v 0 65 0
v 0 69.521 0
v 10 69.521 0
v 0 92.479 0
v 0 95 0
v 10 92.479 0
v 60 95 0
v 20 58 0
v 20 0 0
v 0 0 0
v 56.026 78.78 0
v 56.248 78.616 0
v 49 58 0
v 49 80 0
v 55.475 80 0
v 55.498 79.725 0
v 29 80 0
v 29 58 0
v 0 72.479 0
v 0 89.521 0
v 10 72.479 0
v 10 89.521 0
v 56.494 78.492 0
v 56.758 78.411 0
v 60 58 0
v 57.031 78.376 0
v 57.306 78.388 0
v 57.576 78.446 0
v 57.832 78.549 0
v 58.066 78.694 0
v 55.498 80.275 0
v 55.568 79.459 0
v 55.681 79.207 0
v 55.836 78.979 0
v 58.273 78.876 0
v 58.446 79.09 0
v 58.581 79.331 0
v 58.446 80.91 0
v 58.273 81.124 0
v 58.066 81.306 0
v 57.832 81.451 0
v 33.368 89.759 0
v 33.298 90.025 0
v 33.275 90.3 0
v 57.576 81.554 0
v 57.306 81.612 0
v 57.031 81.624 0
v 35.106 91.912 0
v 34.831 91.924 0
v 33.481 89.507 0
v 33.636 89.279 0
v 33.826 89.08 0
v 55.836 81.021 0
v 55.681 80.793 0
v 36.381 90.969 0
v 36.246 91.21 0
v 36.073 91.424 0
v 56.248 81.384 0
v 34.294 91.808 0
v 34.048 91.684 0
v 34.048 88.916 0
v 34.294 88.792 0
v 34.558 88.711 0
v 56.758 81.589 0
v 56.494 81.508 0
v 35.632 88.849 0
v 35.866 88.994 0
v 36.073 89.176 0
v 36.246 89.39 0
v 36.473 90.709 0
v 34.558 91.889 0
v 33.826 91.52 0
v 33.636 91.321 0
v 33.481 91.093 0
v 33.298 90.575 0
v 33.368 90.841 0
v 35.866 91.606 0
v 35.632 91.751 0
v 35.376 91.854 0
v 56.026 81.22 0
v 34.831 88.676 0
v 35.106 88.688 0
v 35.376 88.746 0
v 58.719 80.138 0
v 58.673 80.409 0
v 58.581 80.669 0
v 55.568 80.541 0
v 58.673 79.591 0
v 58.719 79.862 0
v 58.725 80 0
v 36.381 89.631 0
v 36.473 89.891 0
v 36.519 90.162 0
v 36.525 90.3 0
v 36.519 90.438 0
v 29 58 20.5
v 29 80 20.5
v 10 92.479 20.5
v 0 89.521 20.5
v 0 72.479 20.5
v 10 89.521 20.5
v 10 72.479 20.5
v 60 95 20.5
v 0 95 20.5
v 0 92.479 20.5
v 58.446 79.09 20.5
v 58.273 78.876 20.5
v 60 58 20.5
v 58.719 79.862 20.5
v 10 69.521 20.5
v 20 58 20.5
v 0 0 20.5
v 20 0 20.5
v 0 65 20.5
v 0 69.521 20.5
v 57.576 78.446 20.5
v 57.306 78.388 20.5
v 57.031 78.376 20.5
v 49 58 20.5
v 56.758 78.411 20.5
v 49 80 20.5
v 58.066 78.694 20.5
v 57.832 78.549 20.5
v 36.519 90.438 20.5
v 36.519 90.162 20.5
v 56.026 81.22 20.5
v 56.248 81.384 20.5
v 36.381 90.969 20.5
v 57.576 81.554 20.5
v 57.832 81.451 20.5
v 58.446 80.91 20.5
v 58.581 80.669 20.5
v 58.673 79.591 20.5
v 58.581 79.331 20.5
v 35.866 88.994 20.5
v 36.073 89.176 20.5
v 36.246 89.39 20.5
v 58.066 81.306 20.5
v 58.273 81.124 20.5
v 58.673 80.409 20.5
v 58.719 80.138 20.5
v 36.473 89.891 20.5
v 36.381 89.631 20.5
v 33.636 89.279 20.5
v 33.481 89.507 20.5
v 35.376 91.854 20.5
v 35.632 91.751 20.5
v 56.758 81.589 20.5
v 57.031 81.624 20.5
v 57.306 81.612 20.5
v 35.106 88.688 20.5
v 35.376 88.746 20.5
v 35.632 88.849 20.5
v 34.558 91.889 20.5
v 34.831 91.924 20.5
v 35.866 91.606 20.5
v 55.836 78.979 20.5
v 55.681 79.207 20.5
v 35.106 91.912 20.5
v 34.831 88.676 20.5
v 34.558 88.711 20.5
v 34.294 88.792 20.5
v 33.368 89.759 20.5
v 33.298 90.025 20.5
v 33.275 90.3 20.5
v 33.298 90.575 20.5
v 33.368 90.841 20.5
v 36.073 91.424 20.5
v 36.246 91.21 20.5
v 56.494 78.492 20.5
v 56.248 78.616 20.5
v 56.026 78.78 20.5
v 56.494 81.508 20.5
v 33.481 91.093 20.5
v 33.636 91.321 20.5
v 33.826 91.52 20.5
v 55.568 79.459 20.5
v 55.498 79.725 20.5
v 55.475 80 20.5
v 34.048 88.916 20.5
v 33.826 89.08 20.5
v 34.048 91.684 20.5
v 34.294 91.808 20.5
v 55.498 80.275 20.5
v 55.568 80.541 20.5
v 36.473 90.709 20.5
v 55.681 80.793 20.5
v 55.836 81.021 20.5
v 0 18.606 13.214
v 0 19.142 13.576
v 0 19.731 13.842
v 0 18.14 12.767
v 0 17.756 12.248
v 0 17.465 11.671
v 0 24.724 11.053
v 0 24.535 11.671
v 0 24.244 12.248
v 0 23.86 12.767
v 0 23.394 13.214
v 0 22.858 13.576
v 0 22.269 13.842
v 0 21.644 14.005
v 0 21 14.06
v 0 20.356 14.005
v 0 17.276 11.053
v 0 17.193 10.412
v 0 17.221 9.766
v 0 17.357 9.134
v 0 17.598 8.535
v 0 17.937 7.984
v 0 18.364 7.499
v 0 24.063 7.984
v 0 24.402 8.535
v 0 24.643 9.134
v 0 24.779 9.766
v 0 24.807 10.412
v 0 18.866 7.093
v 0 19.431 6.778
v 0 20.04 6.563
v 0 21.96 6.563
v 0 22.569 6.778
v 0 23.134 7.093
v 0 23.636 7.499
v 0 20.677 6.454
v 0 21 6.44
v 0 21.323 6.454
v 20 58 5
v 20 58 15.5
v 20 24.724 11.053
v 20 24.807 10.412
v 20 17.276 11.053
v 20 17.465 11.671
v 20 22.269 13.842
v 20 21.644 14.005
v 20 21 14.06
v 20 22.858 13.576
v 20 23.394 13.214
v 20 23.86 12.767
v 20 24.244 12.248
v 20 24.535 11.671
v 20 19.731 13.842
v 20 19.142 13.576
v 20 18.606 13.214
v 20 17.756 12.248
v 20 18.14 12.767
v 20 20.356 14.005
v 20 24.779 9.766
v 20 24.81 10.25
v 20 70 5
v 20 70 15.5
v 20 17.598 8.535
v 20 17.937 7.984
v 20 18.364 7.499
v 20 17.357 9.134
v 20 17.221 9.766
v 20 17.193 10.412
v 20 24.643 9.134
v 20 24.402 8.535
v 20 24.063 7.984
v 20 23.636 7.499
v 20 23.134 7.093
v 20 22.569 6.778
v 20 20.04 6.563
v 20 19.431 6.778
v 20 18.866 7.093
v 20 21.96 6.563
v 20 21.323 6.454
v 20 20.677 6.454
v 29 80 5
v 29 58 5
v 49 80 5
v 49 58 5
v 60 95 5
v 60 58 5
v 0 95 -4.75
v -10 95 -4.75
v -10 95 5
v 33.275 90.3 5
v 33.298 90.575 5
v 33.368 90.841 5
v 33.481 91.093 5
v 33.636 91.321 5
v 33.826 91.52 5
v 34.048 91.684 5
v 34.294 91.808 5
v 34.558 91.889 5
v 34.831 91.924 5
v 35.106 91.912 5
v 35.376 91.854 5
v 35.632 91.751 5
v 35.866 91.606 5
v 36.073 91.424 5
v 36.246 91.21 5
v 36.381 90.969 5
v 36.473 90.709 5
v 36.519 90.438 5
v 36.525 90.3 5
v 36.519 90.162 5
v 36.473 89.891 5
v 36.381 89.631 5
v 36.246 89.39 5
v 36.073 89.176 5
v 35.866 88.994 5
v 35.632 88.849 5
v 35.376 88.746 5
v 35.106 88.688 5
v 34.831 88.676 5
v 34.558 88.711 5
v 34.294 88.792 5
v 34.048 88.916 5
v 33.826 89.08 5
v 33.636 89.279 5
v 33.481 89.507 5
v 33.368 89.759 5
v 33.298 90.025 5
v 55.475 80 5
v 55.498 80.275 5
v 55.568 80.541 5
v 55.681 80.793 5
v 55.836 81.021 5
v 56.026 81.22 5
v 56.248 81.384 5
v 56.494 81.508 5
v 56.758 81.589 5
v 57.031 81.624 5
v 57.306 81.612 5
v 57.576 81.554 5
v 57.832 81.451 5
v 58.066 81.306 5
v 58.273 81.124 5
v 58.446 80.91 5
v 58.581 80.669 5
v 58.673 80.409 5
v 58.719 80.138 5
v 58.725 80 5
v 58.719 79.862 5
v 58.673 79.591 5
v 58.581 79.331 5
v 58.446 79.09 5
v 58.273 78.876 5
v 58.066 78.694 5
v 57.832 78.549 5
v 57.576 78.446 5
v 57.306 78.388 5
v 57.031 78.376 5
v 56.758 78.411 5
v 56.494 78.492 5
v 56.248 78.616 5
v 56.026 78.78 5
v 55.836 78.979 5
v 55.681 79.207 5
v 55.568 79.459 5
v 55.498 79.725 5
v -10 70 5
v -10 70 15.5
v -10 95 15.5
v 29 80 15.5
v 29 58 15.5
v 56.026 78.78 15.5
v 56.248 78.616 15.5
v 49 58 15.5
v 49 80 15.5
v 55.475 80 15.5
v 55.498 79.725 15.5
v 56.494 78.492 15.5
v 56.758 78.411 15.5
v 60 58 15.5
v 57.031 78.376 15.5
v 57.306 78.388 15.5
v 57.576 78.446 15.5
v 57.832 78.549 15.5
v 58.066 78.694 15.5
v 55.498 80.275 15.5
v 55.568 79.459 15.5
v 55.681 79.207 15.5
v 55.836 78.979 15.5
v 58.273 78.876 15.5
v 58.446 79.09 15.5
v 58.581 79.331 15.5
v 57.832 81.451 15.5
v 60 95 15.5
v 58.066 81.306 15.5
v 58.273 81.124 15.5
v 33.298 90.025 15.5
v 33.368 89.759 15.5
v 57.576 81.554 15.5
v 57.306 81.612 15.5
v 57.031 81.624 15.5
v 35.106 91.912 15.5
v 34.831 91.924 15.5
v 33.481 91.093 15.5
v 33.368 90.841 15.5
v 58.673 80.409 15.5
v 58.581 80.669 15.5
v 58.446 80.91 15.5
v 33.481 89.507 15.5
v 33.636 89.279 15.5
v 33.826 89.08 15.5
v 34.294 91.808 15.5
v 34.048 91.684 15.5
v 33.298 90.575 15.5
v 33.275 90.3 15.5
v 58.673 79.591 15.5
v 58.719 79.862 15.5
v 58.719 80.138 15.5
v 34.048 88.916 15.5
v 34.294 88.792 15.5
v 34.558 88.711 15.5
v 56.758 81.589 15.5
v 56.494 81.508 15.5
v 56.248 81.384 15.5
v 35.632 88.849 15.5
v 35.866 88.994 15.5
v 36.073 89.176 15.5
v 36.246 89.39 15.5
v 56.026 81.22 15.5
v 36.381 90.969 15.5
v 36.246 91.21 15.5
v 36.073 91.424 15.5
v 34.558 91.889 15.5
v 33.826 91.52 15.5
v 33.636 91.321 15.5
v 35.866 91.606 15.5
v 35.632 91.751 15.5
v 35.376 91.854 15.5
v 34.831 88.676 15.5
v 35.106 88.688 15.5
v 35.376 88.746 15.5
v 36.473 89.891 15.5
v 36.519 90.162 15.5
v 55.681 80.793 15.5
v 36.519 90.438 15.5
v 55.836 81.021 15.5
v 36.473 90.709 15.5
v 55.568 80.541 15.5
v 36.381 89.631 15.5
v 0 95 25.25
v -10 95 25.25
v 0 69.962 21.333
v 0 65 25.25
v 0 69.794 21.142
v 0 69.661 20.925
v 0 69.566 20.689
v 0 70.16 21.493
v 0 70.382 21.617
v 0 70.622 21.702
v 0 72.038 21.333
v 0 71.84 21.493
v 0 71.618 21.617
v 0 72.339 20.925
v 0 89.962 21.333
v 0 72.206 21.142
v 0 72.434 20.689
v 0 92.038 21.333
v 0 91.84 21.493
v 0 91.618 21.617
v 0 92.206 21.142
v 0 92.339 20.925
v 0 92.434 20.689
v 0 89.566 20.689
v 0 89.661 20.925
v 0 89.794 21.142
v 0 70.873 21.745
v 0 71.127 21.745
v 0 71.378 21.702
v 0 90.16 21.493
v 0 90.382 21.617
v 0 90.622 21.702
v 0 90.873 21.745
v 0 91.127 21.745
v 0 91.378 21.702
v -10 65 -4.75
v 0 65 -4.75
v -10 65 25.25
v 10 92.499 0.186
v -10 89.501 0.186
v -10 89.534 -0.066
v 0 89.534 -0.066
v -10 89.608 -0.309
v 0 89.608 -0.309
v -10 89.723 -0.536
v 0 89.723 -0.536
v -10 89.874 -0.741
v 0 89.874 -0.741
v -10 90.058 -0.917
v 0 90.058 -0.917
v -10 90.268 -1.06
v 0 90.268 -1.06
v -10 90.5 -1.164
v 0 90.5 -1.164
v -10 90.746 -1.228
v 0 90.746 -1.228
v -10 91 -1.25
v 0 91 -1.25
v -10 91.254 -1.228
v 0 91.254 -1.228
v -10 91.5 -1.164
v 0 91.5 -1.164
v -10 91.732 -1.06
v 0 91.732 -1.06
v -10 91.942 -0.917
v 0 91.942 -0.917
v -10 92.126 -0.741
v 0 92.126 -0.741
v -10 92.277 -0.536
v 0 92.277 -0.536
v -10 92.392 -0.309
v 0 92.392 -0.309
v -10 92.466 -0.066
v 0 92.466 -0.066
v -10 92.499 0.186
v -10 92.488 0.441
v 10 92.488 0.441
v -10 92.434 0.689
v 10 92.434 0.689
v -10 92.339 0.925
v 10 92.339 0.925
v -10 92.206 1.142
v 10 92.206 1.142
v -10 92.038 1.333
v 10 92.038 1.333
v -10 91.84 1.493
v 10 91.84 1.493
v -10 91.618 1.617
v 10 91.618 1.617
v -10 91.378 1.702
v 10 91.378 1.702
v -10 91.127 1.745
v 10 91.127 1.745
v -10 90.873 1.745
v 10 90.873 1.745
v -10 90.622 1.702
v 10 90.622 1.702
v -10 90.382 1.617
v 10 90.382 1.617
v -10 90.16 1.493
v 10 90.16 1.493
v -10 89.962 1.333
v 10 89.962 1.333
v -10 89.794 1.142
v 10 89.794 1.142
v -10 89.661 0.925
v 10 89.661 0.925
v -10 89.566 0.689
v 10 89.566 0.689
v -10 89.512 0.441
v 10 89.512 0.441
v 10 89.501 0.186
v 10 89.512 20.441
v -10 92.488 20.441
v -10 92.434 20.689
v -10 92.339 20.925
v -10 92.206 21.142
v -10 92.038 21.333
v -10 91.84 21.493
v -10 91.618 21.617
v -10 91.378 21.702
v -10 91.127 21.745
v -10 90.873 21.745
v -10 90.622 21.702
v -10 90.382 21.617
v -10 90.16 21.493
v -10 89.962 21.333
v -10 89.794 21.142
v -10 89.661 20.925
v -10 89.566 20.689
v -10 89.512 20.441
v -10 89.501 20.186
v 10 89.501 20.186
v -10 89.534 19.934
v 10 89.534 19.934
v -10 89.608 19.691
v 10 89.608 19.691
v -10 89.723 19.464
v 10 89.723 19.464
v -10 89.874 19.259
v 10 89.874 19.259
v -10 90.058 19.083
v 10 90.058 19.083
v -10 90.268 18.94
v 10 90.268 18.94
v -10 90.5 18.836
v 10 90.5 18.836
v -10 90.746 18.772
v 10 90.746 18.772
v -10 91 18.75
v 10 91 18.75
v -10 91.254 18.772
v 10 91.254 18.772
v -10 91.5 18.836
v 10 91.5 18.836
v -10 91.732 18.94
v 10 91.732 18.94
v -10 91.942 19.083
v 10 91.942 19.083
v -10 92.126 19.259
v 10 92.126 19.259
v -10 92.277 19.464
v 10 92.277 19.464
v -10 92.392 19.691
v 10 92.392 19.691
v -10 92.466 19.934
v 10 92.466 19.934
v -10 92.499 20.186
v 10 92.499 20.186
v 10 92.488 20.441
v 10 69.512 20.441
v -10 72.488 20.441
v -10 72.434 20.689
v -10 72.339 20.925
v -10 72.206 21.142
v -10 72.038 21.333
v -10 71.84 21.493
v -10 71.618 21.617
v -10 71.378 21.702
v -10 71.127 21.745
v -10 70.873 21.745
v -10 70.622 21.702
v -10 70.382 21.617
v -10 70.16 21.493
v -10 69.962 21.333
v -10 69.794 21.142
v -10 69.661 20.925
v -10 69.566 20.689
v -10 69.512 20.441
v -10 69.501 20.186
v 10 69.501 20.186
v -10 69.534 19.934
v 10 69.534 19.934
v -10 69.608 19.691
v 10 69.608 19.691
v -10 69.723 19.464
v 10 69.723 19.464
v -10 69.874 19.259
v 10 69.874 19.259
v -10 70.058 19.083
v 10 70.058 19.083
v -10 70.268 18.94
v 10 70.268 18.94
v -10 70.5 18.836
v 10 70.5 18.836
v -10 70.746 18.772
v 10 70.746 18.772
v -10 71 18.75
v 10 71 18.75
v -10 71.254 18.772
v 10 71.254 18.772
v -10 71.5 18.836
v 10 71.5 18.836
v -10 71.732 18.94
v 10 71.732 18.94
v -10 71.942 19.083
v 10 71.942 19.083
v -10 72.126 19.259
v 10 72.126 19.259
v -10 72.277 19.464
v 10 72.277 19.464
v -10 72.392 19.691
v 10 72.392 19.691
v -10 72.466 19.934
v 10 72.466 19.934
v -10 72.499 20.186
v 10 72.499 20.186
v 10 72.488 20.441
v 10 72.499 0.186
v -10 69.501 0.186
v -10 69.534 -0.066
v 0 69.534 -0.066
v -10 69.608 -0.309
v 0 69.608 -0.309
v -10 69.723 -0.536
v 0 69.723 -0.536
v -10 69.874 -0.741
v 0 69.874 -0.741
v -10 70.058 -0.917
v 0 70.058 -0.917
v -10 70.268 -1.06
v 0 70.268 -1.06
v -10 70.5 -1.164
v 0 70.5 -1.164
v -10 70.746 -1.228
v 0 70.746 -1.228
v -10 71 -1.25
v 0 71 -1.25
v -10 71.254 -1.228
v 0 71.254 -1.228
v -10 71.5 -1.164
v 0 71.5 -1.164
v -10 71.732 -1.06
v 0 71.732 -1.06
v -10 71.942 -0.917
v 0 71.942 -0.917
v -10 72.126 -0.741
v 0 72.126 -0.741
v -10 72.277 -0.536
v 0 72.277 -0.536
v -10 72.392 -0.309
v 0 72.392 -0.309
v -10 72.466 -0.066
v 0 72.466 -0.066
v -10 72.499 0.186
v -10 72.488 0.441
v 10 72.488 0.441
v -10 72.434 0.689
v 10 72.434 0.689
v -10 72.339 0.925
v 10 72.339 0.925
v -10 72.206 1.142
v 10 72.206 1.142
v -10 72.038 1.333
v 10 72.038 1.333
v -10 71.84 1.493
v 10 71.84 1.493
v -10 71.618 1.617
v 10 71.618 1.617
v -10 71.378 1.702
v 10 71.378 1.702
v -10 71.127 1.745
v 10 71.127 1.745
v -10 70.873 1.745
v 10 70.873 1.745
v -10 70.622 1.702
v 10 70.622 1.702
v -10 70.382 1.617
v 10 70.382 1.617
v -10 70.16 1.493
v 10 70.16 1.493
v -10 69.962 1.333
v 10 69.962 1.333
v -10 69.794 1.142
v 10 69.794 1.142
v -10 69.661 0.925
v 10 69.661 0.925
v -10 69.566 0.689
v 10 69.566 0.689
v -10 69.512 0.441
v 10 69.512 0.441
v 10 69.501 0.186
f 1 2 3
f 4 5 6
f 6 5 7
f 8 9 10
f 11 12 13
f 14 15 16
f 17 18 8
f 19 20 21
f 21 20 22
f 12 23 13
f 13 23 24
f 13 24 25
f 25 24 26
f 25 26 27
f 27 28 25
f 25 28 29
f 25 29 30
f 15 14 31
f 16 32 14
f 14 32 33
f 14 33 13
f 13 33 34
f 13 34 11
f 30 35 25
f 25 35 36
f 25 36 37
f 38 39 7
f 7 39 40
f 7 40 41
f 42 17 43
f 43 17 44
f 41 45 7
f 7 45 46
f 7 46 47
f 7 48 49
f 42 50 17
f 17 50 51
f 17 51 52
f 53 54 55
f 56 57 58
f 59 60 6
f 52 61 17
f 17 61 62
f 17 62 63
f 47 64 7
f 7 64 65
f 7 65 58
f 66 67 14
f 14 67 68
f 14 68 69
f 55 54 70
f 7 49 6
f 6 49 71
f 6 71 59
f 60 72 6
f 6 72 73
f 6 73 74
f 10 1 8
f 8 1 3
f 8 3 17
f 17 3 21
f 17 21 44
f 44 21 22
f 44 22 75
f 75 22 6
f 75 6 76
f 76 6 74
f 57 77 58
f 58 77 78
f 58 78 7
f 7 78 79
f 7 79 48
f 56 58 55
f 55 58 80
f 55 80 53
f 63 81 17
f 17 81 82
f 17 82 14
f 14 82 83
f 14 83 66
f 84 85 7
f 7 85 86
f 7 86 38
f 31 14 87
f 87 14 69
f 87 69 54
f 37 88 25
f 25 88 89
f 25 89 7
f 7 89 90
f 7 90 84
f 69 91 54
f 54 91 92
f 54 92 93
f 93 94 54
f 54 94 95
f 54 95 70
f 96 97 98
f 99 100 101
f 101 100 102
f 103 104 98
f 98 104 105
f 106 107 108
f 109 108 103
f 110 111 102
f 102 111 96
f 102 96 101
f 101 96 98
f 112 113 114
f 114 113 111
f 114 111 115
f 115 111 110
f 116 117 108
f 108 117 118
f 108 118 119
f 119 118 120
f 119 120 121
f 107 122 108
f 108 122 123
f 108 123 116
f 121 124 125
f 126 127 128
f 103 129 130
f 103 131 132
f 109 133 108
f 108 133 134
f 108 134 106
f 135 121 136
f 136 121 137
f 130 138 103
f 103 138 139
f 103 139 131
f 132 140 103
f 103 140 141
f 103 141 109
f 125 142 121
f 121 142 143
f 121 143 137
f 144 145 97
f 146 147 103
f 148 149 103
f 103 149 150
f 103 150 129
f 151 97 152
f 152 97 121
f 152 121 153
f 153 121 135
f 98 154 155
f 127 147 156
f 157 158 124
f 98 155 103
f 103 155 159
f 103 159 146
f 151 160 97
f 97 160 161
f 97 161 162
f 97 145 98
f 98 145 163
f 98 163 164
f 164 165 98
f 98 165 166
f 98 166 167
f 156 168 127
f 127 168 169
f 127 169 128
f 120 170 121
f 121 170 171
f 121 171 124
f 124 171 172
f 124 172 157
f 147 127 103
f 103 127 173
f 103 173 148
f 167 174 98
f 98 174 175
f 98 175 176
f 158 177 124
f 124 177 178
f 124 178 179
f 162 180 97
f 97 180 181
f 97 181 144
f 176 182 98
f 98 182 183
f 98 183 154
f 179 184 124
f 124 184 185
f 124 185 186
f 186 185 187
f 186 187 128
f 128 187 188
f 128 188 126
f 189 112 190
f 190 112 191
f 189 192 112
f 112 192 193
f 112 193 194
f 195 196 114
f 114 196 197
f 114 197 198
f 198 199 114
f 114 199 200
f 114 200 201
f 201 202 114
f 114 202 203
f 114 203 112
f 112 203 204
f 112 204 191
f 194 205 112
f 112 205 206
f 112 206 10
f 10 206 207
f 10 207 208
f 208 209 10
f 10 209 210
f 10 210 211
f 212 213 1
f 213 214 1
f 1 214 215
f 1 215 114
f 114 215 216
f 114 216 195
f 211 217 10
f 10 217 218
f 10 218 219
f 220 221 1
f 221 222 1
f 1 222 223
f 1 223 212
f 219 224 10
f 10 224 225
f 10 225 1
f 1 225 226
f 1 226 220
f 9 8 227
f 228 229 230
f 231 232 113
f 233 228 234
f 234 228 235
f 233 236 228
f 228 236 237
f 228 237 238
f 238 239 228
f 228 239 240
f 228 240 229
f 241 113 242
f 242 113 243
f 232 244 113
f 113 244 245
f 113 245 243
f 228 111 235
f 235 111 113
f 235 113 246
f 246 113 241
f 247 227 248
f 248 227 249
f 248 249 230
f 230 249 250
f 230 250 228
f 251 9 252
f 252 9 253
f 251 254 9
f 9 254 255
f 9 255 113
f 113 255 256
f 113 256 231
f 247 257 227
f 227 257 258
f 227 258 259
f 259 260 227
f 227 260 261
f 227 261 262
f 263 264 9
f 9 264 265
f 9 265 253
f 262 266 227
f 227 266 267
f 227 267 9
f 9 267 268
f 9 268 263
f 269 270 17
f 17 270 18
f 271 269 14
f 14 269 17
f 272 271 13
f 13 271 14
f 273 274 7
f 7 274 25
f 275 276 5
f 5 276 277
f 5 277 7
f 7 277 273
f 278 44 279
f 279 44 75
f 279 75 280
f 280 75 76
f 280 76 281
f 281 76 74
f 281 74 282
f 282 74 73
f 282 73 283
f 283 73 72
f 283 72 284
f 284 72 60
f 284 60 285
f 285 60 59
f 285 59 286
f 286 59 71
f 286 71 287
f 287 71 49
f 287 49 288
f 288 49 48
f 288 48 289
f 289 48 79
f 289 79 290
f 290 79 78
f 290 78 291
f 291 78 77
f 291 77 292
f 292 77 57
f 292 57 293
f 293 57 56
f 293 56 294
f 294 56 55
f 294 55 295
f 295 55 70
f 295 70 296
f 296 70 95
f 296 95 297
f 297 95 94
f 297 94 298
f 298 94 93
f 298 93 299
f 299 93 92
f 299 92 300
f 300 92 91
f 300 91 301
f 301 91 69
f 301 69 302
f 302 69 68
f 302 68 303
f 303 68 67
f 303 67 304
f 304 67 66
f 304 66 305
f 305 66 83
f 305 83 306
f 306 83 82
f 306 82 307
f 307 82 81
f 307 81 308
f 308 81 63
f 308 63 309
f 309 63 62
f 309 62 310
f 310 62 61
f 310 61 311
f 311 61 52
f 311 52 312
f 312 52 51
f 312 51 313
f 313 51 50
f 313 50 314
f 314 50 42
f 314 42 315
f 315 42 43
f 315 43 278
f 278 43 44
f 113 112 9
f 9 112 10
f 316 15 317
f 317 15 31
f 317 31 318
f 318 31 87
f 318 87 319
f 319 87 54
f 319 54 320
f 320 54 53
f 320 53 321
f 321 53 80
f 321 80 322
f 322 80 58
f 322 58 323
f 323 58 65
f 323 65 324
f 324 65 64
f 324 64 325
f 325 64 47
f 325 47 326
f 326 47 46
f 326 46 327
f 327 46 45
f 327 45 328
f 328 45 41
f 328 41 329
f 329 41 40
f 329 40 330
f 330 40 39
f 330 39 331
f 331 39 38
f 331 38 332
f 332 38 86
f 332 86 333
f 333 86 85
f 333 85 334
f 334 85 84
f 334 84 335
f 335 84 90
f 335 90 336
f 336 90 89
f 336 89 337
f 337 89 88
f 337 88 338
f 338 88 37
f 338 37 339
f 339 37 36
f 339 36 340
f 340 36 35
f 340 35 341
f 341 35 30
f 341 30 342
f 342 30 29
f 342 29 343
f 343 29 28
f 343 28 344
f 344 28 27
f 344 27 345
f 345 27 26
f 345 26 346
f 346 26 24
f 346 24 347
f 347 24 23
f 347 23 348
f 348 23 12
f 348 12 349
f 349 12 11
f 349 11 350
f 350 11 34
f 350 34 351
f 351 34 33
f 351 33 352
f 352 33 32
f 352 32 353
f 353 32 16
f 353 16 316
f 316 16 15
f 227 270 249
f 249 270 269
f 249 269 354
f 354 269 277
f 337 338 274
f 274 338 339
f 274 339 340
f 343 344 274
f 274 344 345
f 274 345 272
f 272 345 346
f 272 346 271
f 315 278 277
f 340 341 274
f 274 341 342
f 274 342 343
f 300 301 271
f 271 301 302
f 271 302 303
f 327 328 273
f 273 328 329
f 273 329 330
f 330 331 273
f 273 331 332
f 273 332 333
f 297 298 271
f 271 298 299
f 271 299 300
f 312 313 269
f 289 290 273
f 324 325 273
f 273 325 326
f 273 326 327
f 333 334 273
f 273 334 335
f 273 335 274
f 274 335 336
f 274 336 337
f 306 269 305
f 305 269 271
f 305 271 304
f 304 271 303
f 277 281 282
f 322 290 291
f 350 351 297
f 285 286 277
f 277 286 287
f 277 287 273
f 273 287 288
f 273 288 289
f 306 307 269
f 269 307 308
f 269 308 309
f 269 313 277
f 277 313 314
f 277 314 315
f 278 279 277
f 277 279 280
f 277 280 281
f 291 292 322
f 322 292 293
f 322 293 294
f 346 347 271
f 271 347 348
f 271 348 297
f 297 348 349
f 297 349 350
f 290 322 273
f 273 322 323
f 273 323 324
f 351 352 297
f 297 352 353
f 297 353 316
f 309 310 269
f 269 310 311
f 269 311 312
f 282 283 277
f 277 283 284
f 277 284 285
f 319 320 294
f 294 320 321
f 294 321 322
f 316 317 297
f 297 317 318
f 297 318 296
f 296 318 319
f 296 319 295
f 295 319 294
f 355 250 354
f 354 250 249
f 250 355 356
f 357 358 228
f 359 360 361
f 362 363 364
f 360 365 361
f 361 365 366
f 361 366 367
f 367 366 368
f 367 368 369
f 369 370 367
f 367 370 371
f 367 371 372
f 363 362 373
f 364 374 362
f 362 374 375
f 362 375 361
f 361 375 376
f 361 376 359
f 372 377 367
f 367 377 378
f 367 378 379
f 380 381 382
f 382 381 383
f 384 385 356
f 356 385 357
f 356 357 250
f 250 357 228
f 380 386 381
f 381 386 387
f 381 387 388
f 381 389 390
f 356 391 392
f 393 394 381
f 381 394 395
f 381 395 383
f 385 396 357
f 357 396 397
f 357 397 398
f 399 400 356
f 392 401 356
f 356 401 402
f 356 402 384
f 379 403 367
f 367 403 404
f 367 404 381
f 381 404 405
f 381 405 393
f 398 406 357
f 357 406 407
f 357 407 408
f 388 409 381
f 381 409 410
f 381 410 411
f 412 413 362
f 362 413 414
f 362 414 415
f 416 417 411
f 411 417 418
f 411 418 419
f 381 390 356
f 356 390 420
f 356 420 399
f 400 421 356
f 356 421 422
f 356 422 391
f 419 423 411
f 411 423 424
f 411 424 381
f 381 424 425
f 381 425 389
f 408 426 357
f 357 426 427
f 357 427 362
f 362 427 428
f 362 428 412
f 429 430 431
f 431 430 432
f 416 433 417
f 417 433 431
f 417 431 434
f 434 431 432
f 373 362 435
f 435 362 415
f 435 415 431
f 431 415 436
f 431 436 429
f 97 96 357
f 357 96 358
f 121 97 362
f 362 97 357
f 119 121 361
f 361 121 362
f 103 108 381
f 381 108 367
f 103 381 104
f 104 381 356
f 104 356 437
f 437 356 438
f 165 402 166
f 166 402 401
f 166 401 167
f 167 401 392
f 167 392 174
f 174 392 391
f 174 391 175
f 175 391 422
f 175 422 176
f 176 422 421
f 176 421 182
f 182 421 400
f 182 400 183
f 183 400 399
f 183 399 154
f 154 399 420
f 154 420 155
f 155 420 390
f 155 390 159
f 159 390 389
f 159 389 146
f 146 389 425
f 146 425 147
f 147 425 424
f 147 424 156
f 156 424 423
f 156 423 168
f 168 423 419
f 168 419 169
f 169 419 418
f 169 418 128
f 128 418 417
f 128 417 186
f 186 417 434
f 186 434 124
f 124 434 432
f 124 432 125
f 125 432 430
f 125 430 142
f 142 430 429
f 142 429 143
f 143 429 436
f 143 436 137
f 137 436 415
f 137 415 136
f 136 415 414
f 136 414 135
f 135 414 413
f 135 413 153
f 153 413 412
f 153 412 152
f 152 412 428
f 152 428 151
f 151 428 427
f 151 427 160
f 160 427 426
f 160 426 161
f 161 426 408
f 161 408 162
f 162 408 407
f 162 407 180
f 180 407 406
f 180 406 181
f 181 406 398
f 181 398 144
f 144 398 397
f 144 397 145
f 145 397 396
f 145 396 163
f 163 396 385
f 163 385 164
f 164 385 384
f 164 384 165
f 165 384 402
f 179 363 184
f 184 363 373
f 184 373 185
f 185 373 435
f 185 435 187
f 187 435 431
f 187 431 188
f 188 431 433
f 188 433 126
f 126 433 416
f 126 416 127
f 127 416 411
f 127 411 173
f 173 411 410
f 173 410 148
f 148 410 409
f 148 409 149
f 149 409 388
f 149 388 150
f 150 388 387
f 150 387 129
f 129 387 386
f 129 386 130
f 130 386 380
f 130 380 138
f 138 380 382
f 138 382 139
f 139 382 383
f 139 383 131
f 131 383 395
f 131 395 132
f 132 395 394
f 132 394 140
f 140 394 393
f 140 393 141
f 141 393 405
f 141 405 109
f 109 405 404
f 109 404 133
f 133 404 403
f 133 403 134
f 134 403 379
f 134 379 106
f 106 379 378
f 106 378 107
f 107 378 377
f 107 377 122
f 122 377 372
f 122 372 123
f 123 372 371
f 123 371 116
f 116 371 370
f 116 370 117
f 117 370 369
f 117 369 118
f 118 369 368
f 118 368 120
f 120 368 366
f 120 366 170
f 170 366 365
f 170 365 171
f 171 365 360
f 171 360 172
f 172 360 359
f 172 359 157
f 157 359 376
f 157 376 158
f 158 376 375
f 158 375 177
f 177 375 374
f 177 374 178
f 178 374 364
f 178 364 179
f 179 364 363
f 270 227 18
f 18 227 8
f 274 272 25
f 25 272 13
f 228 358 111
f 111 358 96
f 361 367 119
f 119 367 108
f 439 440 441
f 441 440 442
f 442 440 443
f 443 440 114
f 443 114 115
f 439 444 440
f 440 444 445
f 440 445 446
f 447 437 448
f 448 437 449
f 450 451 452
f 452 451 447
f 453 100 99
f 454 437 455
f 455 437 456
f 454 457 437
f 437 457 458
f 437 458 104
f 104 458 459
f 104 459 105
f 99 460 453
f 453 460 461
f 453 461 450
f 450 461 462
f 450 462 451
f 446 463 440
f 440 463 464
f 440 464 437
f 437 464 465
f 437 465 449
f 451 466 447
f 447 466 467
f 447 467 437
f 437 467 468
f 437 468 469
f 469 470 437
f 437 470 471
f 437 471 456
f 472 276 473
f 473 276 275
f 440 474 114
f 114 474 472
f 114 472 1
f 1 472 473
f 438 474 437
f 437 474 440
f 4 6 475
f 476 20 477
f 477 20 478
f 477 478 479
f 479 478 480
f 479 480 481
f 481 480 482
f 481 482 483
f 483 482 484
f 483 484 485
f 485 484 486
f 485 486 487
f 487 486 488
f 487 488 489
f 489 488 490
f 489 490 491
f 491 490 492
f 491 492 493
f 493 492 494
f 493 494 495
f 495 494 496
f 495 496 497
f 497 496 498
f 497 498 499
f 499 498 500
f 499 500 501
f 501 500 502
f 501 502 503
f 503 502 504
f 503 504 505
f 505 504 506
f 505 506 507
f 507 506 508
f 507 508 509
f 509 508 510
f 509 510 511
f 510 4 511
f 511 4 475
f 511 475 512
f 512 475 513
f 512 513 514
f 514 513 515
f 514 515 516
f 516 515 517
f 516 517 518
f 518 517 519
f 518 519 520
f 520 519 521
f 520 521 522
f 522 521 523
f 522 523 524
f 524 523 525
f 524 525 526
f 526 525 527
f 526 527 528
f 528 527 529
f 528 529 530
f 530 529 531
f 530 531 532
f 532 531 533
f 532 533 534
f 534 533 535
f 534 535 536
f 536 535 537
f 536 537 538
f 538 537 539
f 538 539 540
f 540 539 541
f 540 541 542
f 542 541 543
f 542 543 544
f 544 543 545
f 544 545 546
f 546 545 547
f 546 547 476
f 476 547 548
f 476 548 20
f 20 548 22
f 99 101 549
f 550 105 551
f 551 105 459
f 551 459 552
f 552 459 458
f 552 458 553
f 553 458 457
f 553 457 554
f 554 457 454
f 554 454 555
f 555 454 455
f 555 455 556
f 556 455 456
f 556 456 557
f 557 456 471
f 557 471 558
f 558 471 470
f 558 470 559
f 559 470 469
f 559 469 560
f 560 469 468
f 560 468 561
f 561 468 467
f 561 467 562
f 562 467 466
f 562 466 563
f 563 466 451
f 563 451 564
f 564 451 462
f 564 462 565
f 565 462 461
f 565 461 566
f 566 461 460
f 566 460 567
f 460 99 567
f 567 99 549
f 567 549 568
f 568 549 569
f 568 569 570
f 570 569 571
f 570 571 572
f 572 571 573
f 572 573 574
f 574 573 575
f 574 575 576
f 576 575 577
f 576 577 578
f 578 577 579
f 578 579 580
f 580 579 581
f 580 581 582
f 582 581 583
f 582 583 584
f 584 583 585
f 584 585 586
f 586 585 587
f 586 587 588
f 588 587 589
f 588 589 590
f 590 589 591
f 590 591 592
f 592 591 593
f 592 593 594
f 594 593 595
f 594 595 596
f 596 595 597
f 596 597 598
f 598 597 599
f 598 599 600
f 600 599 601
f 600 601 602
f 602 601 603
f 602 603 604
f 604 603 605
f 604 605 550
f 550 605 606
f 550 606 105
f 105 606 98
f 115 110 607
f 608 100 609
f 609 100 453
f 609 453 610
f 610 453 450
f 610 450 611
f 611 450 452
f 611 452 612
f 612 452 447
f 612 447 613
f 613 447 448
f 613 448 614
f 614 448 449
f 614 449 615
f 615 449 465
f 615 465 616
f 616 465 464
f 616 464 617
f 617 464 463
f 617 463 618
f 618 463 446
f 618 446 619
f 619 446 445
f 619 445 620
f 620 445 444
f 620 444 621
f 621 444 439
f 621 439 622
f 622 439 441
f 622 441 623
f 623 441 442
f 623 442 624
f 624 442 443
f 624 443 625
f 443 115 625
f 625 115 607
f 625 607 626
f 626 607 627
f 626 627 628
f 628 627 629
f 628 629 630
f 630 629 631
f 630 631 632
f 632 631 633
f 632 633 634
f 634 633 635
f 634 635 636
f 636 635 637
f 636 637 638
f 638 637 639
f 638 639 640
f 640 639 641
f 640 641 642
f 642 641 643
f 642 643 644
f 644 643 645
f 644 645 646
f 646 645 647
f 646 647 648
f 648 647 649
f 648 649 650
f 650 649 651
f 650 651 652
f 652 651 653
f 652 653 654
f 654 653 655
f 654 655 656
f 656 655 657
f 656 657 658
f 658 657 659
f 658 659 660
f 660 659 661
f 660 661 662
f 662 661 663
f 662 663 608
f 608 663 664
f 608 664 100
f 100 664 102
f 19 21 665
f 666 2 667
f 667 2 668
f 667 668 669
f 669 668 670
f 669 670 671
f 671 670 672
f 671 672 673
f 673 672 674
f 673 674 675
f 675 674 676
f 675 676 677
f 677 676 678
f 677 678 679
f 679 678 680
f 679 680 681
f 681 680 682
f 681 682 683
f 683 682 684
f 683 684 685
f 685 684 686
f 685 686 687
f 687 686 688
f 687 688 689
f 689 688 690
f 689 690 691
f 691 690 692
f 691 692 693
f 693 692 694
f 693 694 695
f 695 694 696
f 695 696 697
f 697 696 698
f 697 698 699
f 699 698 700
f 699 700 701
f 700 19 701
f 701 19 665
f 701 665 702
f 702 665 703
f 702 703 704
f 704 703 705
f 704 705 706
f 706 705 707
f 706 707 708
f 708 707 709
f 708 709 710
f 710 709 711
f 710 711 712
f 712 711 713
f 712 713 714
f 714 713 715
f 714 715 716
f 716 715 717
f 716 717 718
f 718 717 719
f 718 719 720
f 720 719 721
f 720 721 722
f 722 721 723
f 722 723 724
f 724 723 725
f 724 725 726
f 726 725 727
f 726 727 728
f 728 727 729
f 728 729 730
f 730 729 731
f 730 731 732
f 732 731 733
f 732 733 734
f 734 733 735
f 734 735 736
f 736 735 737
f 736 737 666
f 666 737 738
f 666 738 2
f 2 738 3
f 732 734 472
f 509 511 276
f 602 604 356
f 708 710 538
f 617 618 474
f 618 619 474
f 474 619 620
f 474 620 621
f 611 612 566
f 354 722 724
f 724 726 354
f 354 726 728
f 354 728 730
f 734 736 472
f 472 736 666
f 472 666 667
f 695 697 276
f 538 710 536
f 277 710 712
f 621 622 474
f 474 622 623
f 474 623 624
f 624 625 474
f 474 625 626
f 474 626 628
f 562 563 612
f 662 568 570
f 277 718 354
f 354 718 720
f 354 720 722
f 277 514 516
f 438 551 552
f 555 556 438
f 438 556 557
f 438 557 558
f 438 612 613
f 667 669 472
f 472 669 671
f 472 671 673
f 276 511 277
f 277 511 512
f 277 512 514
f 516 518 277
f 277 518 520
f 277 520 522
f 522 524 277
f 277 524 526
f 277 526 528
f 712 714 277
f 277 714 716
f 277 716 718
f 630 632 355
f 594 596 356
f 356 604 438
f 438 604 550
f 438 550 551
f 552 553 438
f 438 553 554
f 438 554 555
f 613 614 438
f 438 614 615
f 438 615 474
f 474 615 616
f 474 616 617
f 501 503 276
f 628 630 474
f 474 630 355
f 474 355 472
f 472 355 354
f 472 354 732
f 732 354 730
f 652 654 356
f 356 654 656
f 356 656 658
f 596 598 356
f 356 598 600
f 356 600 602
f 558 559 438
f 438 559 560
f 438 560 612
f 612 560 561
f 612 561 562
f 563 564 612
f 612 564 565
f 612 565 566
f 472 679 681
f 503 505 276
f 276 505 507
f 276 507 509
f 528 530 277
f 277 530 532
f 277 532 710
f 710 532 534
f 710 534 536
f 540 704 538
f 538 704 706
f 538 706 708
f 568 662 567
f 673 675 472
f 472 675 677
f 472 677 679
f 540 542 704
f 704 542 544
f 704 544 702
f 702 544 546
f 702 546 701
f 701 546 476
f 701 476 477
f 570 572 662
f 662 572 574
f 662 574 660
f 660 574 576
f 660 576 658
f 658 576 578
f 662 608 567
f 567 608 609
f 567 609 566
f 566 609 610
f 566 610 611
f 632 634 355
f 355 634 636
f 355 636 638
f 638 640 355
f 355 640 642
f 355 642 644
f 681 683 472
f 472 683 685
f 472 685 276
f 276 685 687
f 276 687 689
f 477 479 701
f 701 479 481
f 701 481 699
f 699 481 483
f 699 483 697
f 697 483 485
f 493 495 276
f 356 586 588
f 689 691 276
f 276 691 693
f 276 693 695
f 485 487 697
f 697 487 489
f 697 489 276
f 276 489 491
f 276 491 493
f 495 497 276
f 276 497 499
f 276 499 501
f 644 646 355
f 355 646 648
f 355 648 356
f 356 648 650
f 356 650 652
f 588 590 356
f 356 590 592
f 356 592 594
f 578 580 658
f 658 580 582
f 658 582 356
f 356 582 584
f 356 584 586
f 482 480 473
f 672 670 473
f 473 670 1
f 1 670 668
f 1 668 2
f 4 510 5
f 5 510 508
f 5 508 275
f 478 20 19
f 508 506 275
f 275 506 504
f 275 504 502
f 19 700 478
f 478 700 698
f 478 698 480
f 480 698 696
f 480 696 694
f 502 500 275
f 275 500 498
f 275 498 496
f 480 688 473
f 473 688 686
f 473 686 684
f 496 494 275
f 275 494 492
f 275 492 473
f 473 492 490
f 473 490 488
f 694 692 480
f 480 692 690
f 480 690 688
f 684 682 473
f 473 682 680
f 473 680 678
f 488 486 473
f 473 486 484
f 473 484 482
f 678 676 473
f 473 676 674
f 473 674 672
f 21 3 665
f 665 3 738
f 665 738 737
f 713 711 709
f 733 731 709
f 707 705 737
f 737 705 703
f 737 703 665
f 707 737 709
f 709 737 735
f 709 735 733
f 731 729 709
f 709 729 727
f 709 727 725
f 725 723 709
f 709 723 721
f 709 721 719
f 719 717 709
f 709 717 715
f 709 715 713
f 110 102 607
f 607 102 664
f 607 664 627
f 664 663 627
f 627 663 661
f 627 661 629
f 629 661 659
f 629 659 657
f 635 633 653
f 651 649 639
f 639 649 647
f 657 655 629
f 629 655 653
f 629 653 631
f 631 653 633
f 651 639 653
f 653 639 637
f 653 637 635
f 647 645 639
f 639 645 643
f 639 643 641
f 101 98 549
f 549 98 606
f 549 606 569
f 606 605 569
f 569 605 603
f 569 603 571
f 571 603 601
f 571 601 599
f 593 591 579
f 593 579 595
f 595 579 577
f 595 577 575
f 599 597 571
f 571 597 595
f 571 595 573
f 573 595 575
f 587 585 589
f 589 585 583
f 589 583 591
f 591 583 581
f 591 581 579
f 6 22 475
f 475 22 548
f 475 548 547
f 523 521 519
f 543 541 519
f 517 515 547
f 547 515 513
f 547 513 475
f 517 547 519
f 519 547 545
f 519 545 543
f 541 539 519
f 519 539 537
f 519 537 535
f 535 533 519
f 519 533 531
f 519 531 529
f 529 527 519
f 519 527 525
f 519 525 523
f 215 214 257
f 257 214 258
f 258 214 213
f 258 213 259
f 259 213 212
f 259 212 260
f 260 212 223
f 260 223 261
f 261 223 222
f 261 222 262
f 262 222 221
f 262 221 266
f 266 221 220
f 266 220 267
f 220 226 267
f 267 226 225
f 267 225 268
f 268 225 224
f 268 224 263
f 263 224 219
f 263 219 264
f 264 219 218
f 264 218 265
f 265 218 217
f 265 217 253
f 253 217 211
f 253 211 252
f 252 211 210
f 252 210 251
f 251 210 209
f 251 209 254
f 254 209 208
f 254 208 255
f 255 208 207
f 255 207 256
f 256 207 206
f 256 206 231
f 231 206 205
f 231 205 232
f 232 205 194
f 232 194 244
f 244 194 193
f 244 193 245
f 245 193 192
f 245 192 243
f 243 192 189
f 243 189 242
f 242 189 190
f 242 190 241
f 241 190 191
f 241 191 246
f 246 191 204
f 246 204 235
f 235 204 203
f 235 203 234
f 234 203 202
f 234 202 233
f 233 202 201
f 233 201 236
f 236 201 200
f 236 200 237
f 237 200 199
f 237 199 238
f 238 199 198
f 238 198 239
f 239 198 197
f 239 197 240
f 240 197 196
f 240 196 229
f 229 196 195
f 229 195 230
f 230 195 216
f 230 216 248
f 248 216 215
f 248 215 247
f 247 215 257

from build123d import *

# Parameters (mm, degrees)
SKETCH1_R           = 1.625
BOSS_EXTRUDE1_DEPTH = 5
BOSS_EXTRUDE2_START = 5
SKETCH1_3_W         = 20
SKETCH1_3_H         = 70
BOSS_EXTRUDE2_DEPTH = 10.5
BOSS_EXTRUDE3_START = 15.5
SKETCH1_4_R         = 1.625
BOSS_EXTRUDE3_DEPTH = 5
SKETCH1_5_W         = 9
SKETCH1_5_H         = 12
SKETCH1_5_W_2       = 11
BOSS_EXTRUDE4_DEPTH = 5
BOSS_EXTRUDE5_START = 15.5
SKETCH1_6_W         = 9
SKETCH1_6_H         = 12
SKETCH1_6_W_2       = 11
BOSS_EXTRUDE5_DEPTH = 5
SKETCH2_R           = 1.5
BOSS_EXTRUDE6_DEPTH = 10
CUT_EXTRUDE1_START  = 10
SKETCH2_3_R         = 1.5
CUT_EXTRUDE1_DEPTH  = 10
CUT_EXTRUDE2_START  = -120
SKETCH3_R           = 3.81
CUT_EXTRUDE2_DEPTH  = 20


with BuildPart() as part:
    # Sketch1 → Boss-Extrude1 (new body)
    with BuildSketch(Plane.XY):
        Polygon((20, 70), (29, 70), (29, 80), (49, 80), (49, 70), (60, 70), (60, 95), (0, 95), (0, 0), (20, 0), align=None)
        with Locations((34.9, 90.3)):
            Circle(SKETCH1_R, mode=Mode.SUBTRACT)
        with Locations((57.1, 80)):
            Circle(SKETCH1_R, mode=Mode.SUBTRACT)
    extrude(amount=BOSS_EXTRUDE1_DEPTH)

    # Sketch1<3> → Boss-Extrude2 (add)
    with BuildSketch(Plane.XY.offset(BOSS_EXTRUDE2_START)):
        with Locations((10, 35)):
            Rectangle(SKETCH1_3_W, SKETCH1_3_H)
    extrude(amount=BOSS_EXTRUDE2_DEPTH)

    # Sketch1<4> → Boss-Extrude3 (add)
    with BuildSketch(Plane.XY.offset(BOSS_EXTRUDE3_START)):
        Polygon((20, 70), (29, 70), (29, 80), (49, 80), (49, 70), (60, 70), (60, 95), (0, 95), (0, 0), (20, 0), align=None)
        with Locations((34.9, 90.3)):
            Circle(SKETCH1_4_R, mode=Mode.SUBTRACT)
        with Locations((57.1, 80)):
            Circle(SKETCH1_4_R, mode=Mode.SUBTRACT)
    extrude(amount=BOSS_EXTRUDE3_DEPTH)

    # Sketch1<5> → Boss-Extrude4 (add)
    with BuildSketch(Plane.XY):
        with Locations((24.5, 64)):
            Rectangle(SKETCH1_5_W, SKETCH1_5_H)
        with Locations((54.5, 64)):
            Rectangle(SKETCH1_5_W_2, SKETCH1_5_H)
    extrude(amount=BOSS_EXTRUDE4_DEPTH)

    # Sketch1<6> → Boss-Extrude5 (add)
    with BuildSketch(Plane.XY.offset(BOSS_EXTRUDE5_START)):
        with Locations((24.5, 64)):
            Rectangle(SKETCH1_6_W, SKETCH1_6_H)
        with Locations((54.5, 64)):
            Rectangle(SKETCH1_6_W_2, SKETCH1_6_H)
    extrude(amount=BOSS_EXTRUDE5_DEPTH)

    # Sketch2 → Boss-Extrude6 (add)
    with BuildSketch(Plane(origin=(0, 0, 0), x_dir=(0, 0, -1), z_dir=(1, 0, 0))):
        Polygon((4.75, 65), (4.75, 95), (-5, 95), (-5, 70), (-15.5, 70), (-15.5, 95), (-25.25, 95), (-25.25, 65), align=None)
        with Locations((-20.25, 71)):
            Circle(SKETCH2_R, mode=Mode.SUBTRACT)
        with Locations((-0.25, 71)):
            Circle(SKETCH2_R, mode=Mode.SUBTRACT)
        with Locations((-20.25, 91)):
            Circle(SKETCH2_R, mode=Mode.SUBTRACT)
        with Locations((-0.25, 91)):
            Circle(SKETCH2_R, mode=Mode.SUBTRACT)
    extrude(amount=-BOSS_EXTRUDE6_DEPTH)

    # Sketch2<3> → Cut-Extrude1 (cut)
    with BuildSketch(Plane(origin=(0, 0, 0), x_dir=(0, 0, -1), z_dir=(1, 0, 0)).offset(CUT_EXTRUDE1_START)):
        with Locations((-0.25, 91)):
            Circle(SKETCH2_3_R)
        with Locations((-20.25, 91)):
            Circle(SKETCH2_3_R)
        with Locations((-20.25, 71)):
            Circle(SKETCH2_3_R)
        with Locations((-0.25, 71)):
            Circle(SKETCH2_3_R)
    extrude(amount=-CUT_EXTRUDE1_DEPTH, mode=Mode.SUBTRACT)

    # Sketch3 → Cut-Extrude2 (cut)
    with BuildSketch(Plane.ZY.offset(100).offset(CUT_EXTRUDE2_START)):
        with Locations(Location((10.25, 21, 0), (0, 0, 90))):
            Circle(SKETCH3_R)
    extrude(amount=CUT_EXTRUDE2_DEPTH, mode=Mode.SUBTRACT)


solid = part.part
